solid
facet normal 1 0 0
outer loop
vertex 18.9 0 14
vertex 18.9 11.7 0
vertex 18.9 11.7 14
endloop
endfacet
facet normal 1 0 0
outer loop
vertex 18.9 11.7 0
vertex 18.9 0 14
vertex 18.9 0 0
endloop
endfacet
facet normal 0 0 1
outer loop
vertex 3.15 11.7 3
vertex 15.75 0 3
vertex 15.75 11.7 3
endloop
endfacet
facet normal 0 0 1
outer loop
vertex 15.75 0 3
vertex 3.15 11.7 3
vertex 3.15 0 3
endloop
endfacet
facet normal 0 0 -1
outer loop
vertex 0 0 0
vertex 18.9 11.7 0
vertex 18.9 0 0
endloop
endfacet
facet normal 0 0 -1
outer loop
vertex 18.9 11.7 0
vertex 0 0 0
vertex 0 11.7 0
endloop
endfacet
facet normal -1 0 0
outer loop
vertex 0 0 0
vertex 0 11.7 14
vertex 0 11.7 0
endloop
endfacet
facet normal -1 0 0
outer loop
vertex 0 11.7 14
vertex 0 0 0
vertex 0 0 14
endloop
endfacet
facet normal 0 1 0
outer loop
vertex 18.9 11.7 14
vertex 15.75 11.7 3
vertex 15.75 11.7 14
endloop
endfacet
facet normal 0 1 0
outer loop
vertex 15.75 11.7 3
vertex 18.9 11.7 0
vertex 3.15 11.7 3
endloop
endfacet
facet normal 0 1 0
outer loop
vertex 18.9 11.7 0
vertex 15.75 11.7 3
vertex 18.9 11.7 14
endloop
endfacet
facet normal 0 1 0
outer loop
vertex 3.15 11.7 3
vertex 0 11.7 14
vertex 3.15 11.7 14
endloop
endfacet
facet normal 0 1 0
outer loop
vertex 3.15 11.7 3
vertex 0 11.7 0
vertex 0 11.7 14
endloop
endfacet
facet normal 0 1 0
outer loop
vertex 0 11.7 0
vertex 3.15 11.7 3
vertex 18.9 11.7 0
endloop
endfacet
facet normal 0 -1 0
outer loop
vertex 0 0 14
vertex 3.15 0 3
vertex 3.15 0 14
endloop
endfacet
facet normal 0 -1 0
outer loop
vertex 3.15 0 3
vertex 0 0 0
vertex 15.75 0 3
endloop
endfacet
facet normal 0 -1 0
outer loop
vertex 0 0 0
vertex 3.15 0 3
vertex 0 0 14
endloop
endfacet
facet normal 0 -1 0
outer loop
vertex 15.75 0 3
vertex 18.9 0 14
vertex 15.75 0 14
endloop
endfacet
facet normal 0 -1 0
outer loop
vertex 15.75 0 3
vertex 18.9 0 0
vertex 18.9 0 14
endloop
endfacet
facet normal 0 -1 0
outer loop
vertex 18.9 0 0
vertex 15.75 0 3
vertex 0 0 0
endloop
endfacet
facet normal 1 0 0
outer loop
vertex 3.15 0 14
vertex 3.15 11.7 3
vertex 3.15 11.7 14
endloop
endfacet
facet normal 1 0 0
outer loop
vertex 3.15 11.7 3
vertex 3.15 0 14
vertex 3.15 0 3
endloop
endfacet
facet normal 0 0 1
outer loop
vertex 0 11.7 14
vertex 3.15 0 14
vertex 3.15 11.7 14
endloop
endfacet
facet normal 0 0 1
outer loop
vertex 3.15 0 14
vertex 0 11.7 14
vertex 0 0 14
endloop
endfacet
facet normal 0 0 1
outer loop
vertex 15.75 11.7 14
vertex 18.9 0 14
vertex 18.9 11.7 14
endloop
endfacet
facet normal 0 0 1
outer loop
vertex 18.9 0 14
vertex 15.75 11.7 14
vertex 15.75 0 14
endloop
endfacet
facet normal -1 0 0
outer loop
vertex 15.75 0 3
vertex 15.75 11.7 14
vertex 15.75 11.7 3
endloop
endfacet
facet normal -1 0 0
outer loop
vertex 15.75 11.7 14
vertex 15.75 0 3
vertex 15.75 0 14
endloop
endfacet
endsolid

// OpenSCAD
// file: params.scad
// Shared measurements for the hookswitch assembly (handset / hook / cradle / switch).
// Real caliper measurements taken 2026-07-20 (see CAD-BACKLOG.md) — no
// longer placeholders. switch_screw_d is still a guess (pin/screw size
// wasn't calipered); verify before drilling.

// --- Handset ---
// Measured handle neck width 32.8mm; +0.6mm printer clearance so the
// barrel doesn't bind in the trough (phone_saddle.scad cuts this exact dia).
handset_barrel_d   = 32.8 + 0.6;  // = 33.4
handset_rest_len   = 60;   // length of barrel section that sits in the saddle (not calipered — neck length, adjust if handset sits too shallow/deep)

// --- Hook lever (see-saw pressed down by handset weight) ---
lever_length       = 70;
lever_width        = 22;
lever_thickness    = 5;
pivot_pin_d        = 4;    // diameter of the pivot rod/pin (e.g. M4 bolt or steel rod)
pivot_offset       = 20;   // distance from lever's front edge to the pivot axis

// --- Microswitch (measured: 3-pin lever subminiature microswitch) ---
switch_body_w      = 12.9;   // body length (L)
switch_body_d      = 5.7;    // body width/thickness (W)
switch_body_h      = 6.2;    // body height (H), excludes pins & lever button
switch_lever_ext   = 4.1;    // lever extension above body top — clear this in switch_mount_h
switch_mount_hole_spacing = 6.0;  // measured mounting hole pitch
switch_screw_d     = 2.2;        // NOT calipered — guess for M2 self-tap, verify against actual pins

// --- IR blaster (persona/channel-switch signaling, see PHILOSOPHY.md #5) ---
ir_led_d           = 5;    // standard 5mm IR LED
ir_mount_w         = 20;
ir_mount_h         = 12;

// --- Earcon speaker (small dedicated driver for crt-earcon.sh beeps,
// separate from the handset earpiece -- see IDLE-BAIT.md) ---
earcon_speaker_d   = 28;   // typical small round speaker (e.g. 28mm mini driver)
earcon_grille_hole_d = 2;
earcon_grille_hole_spacing = 4;

// --- General ---
wall               = 3;
clearance          = 0.3;  // fit clearance between mating printed parts
$fn                = 48;
// main file
// "switch" part: bracket holding a mini SPST/SPDT microswitch directly
// under the hook_lever's rear boss, at the height where the lever's
// resting (handset-down) position just fully depresses the plunger.
//
// Screwless version (2026-07-20, no M-hardware on hand): the switch body
// is held by an interference (press) fit between the two side walls
// instead of screwed tabs, and the bracket's own base plate press-fits
// into a socket cut in cradle.scad instead of being screwed down. If it's
// ever too loose/tight, adjust switch_press_fit / cradle_socket_fit below
// rather than re-adding screw holes.
include <params.scad>

switch_mount_h = 14;  // tune so plunger sits exactly under the lever boss at rest
switch_press_fit = 0.3;  // interference: side-wall gap is switch_body_w minus this

module switch_mount() {
  // base plate — press-fits into the socket in cradle.scad, no screws
  cube([switch_body_w + wall*2, switch_body_d + wall*2, wall]);

  // side walls holding the switch body by friction; gap is slightly
  // narrower than the switch so it has to be pressed in
  translate([0, 0, 0])
    cube([wall + switch_press_fit/2, switch_body_d + wall*2, switch_mount_h]);
  translate([switch_body_w + wall - switch_press_fit/2, 0, 0])
    cube([wall + switch_press_fit/2, switch_body_d + wall*2, switch_mount_h]);
}

switch_mount();
